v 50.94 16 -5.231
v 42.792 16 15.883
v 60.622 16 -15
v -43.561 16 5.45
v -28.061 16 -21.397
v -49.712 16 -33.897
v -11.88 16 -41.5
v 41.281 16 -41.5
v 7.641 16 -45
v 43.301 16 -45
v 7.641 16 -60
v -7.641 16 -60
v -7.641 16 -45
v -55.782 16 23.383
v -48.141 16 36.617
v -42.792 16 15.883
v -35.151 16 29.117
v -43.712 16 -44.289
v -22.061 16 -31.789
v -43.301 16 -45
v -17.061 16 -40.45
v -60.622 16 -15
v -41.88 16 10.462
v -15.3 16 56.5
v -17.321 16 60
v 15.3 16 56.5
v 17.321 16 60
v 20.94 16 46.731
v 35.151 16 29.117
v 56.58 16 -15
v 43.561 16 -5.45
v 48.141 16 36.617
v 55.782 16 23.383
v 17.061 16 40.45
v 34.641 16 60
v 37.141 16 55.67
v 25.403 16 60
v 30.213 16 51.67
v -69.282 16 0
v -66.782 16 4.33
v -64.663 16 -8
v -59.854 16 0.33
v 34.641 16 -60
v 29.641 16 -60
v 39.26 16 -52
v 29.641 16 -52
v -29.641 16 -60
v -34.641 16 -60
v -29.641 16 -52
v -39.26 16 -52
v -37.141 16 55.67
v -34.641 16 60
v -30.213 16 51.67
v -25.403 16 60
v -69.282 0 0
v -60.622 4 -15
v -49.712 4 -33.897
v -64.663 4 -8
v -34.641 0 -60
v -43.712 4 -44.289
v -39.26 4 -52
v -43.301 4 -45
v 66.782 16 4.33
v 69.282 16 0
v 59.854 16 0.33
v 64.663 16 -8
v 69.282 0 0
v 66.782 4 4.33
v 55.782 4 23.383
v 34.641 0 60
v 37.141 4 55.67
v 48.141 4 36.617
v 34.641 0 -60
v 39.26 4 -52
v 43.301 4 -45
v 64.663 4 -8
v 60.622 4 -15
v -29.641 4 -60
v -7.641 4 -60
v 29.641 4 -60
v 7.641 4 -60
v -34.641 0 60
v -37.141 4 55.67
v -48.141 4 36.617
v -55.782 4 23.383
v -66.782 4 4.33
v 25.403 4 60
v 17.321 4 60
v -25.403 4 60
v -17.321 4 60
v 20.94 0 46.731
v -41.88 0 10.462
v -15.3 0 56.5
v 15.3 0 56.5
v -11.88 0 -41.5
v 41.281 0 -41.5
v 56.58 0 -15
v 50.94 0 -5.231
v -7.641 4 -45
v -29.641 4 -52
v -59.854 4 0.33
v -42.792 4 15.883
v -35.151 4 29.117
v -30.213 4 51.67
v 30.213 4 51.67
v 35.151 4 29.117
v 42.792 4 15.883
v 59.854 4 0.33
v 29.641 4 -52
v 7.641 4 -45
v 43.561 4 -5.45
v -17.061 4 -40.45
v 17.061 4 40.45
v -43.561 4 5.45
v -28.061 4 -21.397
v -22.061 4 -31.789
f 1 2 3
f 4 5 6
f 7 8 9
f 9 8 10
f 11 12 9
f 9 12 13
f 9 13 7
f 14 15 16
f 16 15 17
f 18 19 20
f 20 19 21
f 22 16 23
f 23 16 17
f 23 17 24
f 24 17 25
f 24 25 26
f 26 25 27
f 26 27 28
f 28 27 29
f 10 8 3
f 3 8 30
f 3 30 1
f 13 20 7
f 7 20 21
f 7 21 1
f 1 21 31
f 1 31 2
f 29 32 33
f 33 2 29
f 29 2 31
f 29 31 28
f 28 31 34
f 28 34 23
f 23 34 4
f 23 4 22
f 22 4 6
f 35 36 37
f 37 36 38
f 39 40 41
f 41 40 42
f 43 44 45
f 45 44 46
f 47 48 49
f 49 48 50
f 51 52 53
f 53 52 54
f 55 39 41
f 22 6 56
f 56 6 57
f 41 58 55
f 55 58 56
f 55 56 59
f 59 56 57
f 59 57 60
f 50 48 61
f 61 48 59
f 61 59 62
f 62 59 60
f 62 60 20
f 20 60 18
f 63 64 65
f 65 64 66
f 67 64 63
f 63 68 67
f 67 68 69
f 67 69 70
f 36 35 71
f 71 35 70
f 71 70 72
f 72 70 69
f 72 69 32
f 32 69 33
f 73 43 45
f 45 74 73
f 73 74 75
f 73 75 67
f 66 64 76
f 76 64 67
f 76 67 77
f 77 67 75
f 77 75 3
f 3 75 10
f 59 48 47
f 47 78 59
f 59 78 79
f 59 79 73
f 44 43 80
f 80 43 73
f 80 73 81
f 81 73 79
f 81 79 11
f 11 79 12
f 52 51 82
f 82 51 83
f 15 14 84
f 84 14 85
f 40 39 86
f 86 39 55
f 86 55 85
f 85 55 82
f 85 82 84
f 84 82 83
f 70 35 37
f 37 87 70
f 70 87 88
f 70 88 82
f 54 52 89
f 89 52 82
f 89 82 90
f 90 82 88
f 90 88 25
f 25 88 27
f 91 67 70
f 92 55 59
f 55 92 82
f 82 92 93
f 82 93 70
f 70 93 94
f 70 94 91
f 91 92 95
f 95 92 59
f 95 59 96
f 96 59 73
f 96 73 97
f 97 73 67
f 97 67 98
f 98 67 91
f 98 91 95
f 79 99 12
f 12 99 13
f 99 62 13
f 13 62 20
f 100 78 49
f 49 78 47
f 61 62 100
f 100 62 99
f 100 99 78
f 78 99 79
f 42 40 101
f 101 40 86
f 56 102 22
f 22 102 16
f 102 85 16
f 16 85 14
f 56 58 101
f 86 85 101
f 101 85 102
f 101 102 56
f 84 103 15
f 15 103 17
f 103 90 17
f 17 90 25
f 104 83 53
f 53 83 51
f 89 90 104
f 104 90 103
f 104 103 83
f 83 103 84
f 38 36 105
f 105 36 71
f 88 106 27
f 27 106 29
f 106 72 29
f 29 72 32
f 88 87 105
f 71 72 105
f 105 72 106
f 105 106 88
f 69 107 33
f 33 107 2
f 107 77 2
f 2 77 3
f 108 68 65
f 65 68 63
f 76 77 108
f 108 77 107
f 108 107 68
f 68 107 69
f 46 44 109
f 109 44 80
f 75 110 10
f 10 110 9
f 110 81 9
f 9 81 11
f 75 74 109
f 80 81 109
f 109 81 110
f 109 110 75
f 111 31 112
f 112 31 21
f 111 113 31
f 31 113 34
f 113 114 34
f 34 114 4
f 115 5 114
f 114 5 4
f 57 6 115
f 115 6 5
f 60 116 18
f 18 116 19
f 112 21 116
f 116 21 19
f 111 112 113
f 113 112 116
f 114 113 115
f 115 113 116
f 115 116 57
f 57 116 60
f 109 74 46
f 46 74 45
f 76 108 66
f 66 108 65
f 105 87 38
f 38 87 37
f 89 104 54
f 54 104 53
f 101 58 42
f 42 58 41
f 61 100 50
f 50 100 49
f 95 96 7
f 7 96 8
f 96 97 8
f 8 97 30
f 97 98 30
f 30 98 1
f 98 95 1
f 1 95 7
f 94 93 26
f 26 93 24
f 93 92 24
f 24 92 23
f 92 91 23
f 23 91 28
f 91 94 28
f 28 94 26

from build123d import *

# Parameters (mm, degrees)
BOSS_EXTRUDE1_DEPTH     = 16
SKETCH2_W               = 22
SKETCH2_H               = 15
CUT_EXTRUDE1_DEPTH      = 12
CUT_EXTRUDE2_DEPTH      = 94.037626797
CUT_EXTRUDE2_DEPTH_BACK = 12
CUT_EXTRUDE4_DEPTH      = 12
CUT_EXTRUDE5_DEPTH      = 94.037626797


with BuildPart() as part:
    # Sketch1 → Boss-Extrude1 (new body)
    with BuildSketch(Plane(origin=(0, 0, 0), x_dir=(1, 0, 0), z_dir=(0, 1, 0))):
        Polygon((69.282032303, 0), (34.641016151, 60), (-34.641016151, 60), (-69.282032303, 0), (-34.641016151, -60), (34.641016151, -60), align=None)
    extrude(amount=BOSS_EXTRUDE1_DEPTH)

    # Sketch2 → Cut-Extrude1 (cut)
    with BuildSketch(Plane(origin=(0, 16, 0), x_dir=(1, 0, 0), z_dir=(0, 1, 0))):
        with Locations((-18.641016151, 52.5)):
            Rectangle(SKETCH2_W, SKETCH2_H)
        with Locations((18.641016151, 52.5)):
            Rectangle(SKETCH2_W, SKETCH2_H)
        Polygon((66.782032303, -4.330127019), (53.791651246, 3.169872981), (42.791651246, -15.882685902), (55.782032303, -23.382685902), align=None)
        Polygon((48.141016151, -36.617314098), (35.150635095, -29.117314098), (24.150635095, -48.169872981), (37.141016151, -55.669872981), align=None)
        Polygon((-37.141016151, -55.669872981), (-24.150635095, -48.169872981), (-35.150635095, -29.117314098), (-48.141016151, -36.617314098), align=None)
        Polygon((-55.782032303, -23.382685902), (-42.791651246, -15.882685902), (-53.791651246, 3.169872981), (-66.782032303, -4.330127019), align=None)
    extrude(amount=-CUT_EXTRUDE1_DEPTH, mode=Mode.SUBTRACT)

    # Sketch3 → Cut-Extrude2 (cut, two sides: drawn at the far end of the back side and taken through both)
    with BuildSketch(Plane(origin=(0, 16, 0), x_dir=(1, 0, 0), z_dir=(0, 1, 0)).offset(-CUT_EXTRUDE2_DEPTH_BACK)):
        Polygon((-43.560889132, -5.4496732), (17.060889132, -40.4496732), (43.560889132, 5.4496732), (-17.060889132, 40.4496732), align=None)
        Polygon((-22.060889132, 31.789419162), (-28.060889132, 21.397114317), (-49.711524227, 33.897114317), (-43.711524227, 44.289419162), align=None)
    extrude(amount=CUT_EXTRUDE2_DEPTH + CUT_EXTRUDE2_DEPTH_BACK, mode=Mode.SUBTRACT)

    # Sketch4 → Cut-Extrude4 (cut)
    with BuildSketch(Plane(origin=(0, 16, 0), x_dir=(1, 0, 0), z_dir=(0, 1, 0))):
        Polygon((-53.791651246, 3.169872981), (-59.853829072, -0.330127019), (-64.663230149, 8), (-60.621778265, 15), align=None)
        Polygon((-24.150635095, -48.169872981), (-30.212812921, -51.669872981), (-25.403411844, -60), (-17.320508076, -60), align=None)
        Polygon((43.301270189, 45), (29.641016151, 45), (29.641016151, 52), (39.259818305, 52), align=None)
        Polygon((-43.301270189, 45), (-29.641016151, 45), (-29.641016151, 52), (-39.259818305, 52), align=None)
        Polygon((17.320508076, -60), (24.150635095, -48.169872981), (30.212812921, -51.669872981), (25.403411844, -60), align=None)
        Polygon((60.621778265, 15), (53.791651246, 3.169872981), (59.853829072, -0.330127019), (64.663230149, 8), align=None)
    extrude(amount=-CUT_EXTRUDE4_DEPTH, mode=Mode.SUBTRACT)

    # Sketch7 → Cut-Extrude5 (cut, through all)
    with BuildSketch(Plane(origin=(0, 16, 0), x_dir=(1, 0, 0), z_dir=(0, 1, 0))):
        Polygon((-41.880108514, -10.461524227), (-15.299782134, -56.5), (15.299782134, -56.5), (20.940054257, -46.730762114), align=None)
        Polygon((-11.880108514, 41.5), (50.940054257, 5.230762114), (56.580326381, 15), (41.280544247, 41.5), align=None)
    extrude(amount=-CUT_EXTRUDE5_DEPTH, mode=Mode.SUBTRACT)


solid = part.part
